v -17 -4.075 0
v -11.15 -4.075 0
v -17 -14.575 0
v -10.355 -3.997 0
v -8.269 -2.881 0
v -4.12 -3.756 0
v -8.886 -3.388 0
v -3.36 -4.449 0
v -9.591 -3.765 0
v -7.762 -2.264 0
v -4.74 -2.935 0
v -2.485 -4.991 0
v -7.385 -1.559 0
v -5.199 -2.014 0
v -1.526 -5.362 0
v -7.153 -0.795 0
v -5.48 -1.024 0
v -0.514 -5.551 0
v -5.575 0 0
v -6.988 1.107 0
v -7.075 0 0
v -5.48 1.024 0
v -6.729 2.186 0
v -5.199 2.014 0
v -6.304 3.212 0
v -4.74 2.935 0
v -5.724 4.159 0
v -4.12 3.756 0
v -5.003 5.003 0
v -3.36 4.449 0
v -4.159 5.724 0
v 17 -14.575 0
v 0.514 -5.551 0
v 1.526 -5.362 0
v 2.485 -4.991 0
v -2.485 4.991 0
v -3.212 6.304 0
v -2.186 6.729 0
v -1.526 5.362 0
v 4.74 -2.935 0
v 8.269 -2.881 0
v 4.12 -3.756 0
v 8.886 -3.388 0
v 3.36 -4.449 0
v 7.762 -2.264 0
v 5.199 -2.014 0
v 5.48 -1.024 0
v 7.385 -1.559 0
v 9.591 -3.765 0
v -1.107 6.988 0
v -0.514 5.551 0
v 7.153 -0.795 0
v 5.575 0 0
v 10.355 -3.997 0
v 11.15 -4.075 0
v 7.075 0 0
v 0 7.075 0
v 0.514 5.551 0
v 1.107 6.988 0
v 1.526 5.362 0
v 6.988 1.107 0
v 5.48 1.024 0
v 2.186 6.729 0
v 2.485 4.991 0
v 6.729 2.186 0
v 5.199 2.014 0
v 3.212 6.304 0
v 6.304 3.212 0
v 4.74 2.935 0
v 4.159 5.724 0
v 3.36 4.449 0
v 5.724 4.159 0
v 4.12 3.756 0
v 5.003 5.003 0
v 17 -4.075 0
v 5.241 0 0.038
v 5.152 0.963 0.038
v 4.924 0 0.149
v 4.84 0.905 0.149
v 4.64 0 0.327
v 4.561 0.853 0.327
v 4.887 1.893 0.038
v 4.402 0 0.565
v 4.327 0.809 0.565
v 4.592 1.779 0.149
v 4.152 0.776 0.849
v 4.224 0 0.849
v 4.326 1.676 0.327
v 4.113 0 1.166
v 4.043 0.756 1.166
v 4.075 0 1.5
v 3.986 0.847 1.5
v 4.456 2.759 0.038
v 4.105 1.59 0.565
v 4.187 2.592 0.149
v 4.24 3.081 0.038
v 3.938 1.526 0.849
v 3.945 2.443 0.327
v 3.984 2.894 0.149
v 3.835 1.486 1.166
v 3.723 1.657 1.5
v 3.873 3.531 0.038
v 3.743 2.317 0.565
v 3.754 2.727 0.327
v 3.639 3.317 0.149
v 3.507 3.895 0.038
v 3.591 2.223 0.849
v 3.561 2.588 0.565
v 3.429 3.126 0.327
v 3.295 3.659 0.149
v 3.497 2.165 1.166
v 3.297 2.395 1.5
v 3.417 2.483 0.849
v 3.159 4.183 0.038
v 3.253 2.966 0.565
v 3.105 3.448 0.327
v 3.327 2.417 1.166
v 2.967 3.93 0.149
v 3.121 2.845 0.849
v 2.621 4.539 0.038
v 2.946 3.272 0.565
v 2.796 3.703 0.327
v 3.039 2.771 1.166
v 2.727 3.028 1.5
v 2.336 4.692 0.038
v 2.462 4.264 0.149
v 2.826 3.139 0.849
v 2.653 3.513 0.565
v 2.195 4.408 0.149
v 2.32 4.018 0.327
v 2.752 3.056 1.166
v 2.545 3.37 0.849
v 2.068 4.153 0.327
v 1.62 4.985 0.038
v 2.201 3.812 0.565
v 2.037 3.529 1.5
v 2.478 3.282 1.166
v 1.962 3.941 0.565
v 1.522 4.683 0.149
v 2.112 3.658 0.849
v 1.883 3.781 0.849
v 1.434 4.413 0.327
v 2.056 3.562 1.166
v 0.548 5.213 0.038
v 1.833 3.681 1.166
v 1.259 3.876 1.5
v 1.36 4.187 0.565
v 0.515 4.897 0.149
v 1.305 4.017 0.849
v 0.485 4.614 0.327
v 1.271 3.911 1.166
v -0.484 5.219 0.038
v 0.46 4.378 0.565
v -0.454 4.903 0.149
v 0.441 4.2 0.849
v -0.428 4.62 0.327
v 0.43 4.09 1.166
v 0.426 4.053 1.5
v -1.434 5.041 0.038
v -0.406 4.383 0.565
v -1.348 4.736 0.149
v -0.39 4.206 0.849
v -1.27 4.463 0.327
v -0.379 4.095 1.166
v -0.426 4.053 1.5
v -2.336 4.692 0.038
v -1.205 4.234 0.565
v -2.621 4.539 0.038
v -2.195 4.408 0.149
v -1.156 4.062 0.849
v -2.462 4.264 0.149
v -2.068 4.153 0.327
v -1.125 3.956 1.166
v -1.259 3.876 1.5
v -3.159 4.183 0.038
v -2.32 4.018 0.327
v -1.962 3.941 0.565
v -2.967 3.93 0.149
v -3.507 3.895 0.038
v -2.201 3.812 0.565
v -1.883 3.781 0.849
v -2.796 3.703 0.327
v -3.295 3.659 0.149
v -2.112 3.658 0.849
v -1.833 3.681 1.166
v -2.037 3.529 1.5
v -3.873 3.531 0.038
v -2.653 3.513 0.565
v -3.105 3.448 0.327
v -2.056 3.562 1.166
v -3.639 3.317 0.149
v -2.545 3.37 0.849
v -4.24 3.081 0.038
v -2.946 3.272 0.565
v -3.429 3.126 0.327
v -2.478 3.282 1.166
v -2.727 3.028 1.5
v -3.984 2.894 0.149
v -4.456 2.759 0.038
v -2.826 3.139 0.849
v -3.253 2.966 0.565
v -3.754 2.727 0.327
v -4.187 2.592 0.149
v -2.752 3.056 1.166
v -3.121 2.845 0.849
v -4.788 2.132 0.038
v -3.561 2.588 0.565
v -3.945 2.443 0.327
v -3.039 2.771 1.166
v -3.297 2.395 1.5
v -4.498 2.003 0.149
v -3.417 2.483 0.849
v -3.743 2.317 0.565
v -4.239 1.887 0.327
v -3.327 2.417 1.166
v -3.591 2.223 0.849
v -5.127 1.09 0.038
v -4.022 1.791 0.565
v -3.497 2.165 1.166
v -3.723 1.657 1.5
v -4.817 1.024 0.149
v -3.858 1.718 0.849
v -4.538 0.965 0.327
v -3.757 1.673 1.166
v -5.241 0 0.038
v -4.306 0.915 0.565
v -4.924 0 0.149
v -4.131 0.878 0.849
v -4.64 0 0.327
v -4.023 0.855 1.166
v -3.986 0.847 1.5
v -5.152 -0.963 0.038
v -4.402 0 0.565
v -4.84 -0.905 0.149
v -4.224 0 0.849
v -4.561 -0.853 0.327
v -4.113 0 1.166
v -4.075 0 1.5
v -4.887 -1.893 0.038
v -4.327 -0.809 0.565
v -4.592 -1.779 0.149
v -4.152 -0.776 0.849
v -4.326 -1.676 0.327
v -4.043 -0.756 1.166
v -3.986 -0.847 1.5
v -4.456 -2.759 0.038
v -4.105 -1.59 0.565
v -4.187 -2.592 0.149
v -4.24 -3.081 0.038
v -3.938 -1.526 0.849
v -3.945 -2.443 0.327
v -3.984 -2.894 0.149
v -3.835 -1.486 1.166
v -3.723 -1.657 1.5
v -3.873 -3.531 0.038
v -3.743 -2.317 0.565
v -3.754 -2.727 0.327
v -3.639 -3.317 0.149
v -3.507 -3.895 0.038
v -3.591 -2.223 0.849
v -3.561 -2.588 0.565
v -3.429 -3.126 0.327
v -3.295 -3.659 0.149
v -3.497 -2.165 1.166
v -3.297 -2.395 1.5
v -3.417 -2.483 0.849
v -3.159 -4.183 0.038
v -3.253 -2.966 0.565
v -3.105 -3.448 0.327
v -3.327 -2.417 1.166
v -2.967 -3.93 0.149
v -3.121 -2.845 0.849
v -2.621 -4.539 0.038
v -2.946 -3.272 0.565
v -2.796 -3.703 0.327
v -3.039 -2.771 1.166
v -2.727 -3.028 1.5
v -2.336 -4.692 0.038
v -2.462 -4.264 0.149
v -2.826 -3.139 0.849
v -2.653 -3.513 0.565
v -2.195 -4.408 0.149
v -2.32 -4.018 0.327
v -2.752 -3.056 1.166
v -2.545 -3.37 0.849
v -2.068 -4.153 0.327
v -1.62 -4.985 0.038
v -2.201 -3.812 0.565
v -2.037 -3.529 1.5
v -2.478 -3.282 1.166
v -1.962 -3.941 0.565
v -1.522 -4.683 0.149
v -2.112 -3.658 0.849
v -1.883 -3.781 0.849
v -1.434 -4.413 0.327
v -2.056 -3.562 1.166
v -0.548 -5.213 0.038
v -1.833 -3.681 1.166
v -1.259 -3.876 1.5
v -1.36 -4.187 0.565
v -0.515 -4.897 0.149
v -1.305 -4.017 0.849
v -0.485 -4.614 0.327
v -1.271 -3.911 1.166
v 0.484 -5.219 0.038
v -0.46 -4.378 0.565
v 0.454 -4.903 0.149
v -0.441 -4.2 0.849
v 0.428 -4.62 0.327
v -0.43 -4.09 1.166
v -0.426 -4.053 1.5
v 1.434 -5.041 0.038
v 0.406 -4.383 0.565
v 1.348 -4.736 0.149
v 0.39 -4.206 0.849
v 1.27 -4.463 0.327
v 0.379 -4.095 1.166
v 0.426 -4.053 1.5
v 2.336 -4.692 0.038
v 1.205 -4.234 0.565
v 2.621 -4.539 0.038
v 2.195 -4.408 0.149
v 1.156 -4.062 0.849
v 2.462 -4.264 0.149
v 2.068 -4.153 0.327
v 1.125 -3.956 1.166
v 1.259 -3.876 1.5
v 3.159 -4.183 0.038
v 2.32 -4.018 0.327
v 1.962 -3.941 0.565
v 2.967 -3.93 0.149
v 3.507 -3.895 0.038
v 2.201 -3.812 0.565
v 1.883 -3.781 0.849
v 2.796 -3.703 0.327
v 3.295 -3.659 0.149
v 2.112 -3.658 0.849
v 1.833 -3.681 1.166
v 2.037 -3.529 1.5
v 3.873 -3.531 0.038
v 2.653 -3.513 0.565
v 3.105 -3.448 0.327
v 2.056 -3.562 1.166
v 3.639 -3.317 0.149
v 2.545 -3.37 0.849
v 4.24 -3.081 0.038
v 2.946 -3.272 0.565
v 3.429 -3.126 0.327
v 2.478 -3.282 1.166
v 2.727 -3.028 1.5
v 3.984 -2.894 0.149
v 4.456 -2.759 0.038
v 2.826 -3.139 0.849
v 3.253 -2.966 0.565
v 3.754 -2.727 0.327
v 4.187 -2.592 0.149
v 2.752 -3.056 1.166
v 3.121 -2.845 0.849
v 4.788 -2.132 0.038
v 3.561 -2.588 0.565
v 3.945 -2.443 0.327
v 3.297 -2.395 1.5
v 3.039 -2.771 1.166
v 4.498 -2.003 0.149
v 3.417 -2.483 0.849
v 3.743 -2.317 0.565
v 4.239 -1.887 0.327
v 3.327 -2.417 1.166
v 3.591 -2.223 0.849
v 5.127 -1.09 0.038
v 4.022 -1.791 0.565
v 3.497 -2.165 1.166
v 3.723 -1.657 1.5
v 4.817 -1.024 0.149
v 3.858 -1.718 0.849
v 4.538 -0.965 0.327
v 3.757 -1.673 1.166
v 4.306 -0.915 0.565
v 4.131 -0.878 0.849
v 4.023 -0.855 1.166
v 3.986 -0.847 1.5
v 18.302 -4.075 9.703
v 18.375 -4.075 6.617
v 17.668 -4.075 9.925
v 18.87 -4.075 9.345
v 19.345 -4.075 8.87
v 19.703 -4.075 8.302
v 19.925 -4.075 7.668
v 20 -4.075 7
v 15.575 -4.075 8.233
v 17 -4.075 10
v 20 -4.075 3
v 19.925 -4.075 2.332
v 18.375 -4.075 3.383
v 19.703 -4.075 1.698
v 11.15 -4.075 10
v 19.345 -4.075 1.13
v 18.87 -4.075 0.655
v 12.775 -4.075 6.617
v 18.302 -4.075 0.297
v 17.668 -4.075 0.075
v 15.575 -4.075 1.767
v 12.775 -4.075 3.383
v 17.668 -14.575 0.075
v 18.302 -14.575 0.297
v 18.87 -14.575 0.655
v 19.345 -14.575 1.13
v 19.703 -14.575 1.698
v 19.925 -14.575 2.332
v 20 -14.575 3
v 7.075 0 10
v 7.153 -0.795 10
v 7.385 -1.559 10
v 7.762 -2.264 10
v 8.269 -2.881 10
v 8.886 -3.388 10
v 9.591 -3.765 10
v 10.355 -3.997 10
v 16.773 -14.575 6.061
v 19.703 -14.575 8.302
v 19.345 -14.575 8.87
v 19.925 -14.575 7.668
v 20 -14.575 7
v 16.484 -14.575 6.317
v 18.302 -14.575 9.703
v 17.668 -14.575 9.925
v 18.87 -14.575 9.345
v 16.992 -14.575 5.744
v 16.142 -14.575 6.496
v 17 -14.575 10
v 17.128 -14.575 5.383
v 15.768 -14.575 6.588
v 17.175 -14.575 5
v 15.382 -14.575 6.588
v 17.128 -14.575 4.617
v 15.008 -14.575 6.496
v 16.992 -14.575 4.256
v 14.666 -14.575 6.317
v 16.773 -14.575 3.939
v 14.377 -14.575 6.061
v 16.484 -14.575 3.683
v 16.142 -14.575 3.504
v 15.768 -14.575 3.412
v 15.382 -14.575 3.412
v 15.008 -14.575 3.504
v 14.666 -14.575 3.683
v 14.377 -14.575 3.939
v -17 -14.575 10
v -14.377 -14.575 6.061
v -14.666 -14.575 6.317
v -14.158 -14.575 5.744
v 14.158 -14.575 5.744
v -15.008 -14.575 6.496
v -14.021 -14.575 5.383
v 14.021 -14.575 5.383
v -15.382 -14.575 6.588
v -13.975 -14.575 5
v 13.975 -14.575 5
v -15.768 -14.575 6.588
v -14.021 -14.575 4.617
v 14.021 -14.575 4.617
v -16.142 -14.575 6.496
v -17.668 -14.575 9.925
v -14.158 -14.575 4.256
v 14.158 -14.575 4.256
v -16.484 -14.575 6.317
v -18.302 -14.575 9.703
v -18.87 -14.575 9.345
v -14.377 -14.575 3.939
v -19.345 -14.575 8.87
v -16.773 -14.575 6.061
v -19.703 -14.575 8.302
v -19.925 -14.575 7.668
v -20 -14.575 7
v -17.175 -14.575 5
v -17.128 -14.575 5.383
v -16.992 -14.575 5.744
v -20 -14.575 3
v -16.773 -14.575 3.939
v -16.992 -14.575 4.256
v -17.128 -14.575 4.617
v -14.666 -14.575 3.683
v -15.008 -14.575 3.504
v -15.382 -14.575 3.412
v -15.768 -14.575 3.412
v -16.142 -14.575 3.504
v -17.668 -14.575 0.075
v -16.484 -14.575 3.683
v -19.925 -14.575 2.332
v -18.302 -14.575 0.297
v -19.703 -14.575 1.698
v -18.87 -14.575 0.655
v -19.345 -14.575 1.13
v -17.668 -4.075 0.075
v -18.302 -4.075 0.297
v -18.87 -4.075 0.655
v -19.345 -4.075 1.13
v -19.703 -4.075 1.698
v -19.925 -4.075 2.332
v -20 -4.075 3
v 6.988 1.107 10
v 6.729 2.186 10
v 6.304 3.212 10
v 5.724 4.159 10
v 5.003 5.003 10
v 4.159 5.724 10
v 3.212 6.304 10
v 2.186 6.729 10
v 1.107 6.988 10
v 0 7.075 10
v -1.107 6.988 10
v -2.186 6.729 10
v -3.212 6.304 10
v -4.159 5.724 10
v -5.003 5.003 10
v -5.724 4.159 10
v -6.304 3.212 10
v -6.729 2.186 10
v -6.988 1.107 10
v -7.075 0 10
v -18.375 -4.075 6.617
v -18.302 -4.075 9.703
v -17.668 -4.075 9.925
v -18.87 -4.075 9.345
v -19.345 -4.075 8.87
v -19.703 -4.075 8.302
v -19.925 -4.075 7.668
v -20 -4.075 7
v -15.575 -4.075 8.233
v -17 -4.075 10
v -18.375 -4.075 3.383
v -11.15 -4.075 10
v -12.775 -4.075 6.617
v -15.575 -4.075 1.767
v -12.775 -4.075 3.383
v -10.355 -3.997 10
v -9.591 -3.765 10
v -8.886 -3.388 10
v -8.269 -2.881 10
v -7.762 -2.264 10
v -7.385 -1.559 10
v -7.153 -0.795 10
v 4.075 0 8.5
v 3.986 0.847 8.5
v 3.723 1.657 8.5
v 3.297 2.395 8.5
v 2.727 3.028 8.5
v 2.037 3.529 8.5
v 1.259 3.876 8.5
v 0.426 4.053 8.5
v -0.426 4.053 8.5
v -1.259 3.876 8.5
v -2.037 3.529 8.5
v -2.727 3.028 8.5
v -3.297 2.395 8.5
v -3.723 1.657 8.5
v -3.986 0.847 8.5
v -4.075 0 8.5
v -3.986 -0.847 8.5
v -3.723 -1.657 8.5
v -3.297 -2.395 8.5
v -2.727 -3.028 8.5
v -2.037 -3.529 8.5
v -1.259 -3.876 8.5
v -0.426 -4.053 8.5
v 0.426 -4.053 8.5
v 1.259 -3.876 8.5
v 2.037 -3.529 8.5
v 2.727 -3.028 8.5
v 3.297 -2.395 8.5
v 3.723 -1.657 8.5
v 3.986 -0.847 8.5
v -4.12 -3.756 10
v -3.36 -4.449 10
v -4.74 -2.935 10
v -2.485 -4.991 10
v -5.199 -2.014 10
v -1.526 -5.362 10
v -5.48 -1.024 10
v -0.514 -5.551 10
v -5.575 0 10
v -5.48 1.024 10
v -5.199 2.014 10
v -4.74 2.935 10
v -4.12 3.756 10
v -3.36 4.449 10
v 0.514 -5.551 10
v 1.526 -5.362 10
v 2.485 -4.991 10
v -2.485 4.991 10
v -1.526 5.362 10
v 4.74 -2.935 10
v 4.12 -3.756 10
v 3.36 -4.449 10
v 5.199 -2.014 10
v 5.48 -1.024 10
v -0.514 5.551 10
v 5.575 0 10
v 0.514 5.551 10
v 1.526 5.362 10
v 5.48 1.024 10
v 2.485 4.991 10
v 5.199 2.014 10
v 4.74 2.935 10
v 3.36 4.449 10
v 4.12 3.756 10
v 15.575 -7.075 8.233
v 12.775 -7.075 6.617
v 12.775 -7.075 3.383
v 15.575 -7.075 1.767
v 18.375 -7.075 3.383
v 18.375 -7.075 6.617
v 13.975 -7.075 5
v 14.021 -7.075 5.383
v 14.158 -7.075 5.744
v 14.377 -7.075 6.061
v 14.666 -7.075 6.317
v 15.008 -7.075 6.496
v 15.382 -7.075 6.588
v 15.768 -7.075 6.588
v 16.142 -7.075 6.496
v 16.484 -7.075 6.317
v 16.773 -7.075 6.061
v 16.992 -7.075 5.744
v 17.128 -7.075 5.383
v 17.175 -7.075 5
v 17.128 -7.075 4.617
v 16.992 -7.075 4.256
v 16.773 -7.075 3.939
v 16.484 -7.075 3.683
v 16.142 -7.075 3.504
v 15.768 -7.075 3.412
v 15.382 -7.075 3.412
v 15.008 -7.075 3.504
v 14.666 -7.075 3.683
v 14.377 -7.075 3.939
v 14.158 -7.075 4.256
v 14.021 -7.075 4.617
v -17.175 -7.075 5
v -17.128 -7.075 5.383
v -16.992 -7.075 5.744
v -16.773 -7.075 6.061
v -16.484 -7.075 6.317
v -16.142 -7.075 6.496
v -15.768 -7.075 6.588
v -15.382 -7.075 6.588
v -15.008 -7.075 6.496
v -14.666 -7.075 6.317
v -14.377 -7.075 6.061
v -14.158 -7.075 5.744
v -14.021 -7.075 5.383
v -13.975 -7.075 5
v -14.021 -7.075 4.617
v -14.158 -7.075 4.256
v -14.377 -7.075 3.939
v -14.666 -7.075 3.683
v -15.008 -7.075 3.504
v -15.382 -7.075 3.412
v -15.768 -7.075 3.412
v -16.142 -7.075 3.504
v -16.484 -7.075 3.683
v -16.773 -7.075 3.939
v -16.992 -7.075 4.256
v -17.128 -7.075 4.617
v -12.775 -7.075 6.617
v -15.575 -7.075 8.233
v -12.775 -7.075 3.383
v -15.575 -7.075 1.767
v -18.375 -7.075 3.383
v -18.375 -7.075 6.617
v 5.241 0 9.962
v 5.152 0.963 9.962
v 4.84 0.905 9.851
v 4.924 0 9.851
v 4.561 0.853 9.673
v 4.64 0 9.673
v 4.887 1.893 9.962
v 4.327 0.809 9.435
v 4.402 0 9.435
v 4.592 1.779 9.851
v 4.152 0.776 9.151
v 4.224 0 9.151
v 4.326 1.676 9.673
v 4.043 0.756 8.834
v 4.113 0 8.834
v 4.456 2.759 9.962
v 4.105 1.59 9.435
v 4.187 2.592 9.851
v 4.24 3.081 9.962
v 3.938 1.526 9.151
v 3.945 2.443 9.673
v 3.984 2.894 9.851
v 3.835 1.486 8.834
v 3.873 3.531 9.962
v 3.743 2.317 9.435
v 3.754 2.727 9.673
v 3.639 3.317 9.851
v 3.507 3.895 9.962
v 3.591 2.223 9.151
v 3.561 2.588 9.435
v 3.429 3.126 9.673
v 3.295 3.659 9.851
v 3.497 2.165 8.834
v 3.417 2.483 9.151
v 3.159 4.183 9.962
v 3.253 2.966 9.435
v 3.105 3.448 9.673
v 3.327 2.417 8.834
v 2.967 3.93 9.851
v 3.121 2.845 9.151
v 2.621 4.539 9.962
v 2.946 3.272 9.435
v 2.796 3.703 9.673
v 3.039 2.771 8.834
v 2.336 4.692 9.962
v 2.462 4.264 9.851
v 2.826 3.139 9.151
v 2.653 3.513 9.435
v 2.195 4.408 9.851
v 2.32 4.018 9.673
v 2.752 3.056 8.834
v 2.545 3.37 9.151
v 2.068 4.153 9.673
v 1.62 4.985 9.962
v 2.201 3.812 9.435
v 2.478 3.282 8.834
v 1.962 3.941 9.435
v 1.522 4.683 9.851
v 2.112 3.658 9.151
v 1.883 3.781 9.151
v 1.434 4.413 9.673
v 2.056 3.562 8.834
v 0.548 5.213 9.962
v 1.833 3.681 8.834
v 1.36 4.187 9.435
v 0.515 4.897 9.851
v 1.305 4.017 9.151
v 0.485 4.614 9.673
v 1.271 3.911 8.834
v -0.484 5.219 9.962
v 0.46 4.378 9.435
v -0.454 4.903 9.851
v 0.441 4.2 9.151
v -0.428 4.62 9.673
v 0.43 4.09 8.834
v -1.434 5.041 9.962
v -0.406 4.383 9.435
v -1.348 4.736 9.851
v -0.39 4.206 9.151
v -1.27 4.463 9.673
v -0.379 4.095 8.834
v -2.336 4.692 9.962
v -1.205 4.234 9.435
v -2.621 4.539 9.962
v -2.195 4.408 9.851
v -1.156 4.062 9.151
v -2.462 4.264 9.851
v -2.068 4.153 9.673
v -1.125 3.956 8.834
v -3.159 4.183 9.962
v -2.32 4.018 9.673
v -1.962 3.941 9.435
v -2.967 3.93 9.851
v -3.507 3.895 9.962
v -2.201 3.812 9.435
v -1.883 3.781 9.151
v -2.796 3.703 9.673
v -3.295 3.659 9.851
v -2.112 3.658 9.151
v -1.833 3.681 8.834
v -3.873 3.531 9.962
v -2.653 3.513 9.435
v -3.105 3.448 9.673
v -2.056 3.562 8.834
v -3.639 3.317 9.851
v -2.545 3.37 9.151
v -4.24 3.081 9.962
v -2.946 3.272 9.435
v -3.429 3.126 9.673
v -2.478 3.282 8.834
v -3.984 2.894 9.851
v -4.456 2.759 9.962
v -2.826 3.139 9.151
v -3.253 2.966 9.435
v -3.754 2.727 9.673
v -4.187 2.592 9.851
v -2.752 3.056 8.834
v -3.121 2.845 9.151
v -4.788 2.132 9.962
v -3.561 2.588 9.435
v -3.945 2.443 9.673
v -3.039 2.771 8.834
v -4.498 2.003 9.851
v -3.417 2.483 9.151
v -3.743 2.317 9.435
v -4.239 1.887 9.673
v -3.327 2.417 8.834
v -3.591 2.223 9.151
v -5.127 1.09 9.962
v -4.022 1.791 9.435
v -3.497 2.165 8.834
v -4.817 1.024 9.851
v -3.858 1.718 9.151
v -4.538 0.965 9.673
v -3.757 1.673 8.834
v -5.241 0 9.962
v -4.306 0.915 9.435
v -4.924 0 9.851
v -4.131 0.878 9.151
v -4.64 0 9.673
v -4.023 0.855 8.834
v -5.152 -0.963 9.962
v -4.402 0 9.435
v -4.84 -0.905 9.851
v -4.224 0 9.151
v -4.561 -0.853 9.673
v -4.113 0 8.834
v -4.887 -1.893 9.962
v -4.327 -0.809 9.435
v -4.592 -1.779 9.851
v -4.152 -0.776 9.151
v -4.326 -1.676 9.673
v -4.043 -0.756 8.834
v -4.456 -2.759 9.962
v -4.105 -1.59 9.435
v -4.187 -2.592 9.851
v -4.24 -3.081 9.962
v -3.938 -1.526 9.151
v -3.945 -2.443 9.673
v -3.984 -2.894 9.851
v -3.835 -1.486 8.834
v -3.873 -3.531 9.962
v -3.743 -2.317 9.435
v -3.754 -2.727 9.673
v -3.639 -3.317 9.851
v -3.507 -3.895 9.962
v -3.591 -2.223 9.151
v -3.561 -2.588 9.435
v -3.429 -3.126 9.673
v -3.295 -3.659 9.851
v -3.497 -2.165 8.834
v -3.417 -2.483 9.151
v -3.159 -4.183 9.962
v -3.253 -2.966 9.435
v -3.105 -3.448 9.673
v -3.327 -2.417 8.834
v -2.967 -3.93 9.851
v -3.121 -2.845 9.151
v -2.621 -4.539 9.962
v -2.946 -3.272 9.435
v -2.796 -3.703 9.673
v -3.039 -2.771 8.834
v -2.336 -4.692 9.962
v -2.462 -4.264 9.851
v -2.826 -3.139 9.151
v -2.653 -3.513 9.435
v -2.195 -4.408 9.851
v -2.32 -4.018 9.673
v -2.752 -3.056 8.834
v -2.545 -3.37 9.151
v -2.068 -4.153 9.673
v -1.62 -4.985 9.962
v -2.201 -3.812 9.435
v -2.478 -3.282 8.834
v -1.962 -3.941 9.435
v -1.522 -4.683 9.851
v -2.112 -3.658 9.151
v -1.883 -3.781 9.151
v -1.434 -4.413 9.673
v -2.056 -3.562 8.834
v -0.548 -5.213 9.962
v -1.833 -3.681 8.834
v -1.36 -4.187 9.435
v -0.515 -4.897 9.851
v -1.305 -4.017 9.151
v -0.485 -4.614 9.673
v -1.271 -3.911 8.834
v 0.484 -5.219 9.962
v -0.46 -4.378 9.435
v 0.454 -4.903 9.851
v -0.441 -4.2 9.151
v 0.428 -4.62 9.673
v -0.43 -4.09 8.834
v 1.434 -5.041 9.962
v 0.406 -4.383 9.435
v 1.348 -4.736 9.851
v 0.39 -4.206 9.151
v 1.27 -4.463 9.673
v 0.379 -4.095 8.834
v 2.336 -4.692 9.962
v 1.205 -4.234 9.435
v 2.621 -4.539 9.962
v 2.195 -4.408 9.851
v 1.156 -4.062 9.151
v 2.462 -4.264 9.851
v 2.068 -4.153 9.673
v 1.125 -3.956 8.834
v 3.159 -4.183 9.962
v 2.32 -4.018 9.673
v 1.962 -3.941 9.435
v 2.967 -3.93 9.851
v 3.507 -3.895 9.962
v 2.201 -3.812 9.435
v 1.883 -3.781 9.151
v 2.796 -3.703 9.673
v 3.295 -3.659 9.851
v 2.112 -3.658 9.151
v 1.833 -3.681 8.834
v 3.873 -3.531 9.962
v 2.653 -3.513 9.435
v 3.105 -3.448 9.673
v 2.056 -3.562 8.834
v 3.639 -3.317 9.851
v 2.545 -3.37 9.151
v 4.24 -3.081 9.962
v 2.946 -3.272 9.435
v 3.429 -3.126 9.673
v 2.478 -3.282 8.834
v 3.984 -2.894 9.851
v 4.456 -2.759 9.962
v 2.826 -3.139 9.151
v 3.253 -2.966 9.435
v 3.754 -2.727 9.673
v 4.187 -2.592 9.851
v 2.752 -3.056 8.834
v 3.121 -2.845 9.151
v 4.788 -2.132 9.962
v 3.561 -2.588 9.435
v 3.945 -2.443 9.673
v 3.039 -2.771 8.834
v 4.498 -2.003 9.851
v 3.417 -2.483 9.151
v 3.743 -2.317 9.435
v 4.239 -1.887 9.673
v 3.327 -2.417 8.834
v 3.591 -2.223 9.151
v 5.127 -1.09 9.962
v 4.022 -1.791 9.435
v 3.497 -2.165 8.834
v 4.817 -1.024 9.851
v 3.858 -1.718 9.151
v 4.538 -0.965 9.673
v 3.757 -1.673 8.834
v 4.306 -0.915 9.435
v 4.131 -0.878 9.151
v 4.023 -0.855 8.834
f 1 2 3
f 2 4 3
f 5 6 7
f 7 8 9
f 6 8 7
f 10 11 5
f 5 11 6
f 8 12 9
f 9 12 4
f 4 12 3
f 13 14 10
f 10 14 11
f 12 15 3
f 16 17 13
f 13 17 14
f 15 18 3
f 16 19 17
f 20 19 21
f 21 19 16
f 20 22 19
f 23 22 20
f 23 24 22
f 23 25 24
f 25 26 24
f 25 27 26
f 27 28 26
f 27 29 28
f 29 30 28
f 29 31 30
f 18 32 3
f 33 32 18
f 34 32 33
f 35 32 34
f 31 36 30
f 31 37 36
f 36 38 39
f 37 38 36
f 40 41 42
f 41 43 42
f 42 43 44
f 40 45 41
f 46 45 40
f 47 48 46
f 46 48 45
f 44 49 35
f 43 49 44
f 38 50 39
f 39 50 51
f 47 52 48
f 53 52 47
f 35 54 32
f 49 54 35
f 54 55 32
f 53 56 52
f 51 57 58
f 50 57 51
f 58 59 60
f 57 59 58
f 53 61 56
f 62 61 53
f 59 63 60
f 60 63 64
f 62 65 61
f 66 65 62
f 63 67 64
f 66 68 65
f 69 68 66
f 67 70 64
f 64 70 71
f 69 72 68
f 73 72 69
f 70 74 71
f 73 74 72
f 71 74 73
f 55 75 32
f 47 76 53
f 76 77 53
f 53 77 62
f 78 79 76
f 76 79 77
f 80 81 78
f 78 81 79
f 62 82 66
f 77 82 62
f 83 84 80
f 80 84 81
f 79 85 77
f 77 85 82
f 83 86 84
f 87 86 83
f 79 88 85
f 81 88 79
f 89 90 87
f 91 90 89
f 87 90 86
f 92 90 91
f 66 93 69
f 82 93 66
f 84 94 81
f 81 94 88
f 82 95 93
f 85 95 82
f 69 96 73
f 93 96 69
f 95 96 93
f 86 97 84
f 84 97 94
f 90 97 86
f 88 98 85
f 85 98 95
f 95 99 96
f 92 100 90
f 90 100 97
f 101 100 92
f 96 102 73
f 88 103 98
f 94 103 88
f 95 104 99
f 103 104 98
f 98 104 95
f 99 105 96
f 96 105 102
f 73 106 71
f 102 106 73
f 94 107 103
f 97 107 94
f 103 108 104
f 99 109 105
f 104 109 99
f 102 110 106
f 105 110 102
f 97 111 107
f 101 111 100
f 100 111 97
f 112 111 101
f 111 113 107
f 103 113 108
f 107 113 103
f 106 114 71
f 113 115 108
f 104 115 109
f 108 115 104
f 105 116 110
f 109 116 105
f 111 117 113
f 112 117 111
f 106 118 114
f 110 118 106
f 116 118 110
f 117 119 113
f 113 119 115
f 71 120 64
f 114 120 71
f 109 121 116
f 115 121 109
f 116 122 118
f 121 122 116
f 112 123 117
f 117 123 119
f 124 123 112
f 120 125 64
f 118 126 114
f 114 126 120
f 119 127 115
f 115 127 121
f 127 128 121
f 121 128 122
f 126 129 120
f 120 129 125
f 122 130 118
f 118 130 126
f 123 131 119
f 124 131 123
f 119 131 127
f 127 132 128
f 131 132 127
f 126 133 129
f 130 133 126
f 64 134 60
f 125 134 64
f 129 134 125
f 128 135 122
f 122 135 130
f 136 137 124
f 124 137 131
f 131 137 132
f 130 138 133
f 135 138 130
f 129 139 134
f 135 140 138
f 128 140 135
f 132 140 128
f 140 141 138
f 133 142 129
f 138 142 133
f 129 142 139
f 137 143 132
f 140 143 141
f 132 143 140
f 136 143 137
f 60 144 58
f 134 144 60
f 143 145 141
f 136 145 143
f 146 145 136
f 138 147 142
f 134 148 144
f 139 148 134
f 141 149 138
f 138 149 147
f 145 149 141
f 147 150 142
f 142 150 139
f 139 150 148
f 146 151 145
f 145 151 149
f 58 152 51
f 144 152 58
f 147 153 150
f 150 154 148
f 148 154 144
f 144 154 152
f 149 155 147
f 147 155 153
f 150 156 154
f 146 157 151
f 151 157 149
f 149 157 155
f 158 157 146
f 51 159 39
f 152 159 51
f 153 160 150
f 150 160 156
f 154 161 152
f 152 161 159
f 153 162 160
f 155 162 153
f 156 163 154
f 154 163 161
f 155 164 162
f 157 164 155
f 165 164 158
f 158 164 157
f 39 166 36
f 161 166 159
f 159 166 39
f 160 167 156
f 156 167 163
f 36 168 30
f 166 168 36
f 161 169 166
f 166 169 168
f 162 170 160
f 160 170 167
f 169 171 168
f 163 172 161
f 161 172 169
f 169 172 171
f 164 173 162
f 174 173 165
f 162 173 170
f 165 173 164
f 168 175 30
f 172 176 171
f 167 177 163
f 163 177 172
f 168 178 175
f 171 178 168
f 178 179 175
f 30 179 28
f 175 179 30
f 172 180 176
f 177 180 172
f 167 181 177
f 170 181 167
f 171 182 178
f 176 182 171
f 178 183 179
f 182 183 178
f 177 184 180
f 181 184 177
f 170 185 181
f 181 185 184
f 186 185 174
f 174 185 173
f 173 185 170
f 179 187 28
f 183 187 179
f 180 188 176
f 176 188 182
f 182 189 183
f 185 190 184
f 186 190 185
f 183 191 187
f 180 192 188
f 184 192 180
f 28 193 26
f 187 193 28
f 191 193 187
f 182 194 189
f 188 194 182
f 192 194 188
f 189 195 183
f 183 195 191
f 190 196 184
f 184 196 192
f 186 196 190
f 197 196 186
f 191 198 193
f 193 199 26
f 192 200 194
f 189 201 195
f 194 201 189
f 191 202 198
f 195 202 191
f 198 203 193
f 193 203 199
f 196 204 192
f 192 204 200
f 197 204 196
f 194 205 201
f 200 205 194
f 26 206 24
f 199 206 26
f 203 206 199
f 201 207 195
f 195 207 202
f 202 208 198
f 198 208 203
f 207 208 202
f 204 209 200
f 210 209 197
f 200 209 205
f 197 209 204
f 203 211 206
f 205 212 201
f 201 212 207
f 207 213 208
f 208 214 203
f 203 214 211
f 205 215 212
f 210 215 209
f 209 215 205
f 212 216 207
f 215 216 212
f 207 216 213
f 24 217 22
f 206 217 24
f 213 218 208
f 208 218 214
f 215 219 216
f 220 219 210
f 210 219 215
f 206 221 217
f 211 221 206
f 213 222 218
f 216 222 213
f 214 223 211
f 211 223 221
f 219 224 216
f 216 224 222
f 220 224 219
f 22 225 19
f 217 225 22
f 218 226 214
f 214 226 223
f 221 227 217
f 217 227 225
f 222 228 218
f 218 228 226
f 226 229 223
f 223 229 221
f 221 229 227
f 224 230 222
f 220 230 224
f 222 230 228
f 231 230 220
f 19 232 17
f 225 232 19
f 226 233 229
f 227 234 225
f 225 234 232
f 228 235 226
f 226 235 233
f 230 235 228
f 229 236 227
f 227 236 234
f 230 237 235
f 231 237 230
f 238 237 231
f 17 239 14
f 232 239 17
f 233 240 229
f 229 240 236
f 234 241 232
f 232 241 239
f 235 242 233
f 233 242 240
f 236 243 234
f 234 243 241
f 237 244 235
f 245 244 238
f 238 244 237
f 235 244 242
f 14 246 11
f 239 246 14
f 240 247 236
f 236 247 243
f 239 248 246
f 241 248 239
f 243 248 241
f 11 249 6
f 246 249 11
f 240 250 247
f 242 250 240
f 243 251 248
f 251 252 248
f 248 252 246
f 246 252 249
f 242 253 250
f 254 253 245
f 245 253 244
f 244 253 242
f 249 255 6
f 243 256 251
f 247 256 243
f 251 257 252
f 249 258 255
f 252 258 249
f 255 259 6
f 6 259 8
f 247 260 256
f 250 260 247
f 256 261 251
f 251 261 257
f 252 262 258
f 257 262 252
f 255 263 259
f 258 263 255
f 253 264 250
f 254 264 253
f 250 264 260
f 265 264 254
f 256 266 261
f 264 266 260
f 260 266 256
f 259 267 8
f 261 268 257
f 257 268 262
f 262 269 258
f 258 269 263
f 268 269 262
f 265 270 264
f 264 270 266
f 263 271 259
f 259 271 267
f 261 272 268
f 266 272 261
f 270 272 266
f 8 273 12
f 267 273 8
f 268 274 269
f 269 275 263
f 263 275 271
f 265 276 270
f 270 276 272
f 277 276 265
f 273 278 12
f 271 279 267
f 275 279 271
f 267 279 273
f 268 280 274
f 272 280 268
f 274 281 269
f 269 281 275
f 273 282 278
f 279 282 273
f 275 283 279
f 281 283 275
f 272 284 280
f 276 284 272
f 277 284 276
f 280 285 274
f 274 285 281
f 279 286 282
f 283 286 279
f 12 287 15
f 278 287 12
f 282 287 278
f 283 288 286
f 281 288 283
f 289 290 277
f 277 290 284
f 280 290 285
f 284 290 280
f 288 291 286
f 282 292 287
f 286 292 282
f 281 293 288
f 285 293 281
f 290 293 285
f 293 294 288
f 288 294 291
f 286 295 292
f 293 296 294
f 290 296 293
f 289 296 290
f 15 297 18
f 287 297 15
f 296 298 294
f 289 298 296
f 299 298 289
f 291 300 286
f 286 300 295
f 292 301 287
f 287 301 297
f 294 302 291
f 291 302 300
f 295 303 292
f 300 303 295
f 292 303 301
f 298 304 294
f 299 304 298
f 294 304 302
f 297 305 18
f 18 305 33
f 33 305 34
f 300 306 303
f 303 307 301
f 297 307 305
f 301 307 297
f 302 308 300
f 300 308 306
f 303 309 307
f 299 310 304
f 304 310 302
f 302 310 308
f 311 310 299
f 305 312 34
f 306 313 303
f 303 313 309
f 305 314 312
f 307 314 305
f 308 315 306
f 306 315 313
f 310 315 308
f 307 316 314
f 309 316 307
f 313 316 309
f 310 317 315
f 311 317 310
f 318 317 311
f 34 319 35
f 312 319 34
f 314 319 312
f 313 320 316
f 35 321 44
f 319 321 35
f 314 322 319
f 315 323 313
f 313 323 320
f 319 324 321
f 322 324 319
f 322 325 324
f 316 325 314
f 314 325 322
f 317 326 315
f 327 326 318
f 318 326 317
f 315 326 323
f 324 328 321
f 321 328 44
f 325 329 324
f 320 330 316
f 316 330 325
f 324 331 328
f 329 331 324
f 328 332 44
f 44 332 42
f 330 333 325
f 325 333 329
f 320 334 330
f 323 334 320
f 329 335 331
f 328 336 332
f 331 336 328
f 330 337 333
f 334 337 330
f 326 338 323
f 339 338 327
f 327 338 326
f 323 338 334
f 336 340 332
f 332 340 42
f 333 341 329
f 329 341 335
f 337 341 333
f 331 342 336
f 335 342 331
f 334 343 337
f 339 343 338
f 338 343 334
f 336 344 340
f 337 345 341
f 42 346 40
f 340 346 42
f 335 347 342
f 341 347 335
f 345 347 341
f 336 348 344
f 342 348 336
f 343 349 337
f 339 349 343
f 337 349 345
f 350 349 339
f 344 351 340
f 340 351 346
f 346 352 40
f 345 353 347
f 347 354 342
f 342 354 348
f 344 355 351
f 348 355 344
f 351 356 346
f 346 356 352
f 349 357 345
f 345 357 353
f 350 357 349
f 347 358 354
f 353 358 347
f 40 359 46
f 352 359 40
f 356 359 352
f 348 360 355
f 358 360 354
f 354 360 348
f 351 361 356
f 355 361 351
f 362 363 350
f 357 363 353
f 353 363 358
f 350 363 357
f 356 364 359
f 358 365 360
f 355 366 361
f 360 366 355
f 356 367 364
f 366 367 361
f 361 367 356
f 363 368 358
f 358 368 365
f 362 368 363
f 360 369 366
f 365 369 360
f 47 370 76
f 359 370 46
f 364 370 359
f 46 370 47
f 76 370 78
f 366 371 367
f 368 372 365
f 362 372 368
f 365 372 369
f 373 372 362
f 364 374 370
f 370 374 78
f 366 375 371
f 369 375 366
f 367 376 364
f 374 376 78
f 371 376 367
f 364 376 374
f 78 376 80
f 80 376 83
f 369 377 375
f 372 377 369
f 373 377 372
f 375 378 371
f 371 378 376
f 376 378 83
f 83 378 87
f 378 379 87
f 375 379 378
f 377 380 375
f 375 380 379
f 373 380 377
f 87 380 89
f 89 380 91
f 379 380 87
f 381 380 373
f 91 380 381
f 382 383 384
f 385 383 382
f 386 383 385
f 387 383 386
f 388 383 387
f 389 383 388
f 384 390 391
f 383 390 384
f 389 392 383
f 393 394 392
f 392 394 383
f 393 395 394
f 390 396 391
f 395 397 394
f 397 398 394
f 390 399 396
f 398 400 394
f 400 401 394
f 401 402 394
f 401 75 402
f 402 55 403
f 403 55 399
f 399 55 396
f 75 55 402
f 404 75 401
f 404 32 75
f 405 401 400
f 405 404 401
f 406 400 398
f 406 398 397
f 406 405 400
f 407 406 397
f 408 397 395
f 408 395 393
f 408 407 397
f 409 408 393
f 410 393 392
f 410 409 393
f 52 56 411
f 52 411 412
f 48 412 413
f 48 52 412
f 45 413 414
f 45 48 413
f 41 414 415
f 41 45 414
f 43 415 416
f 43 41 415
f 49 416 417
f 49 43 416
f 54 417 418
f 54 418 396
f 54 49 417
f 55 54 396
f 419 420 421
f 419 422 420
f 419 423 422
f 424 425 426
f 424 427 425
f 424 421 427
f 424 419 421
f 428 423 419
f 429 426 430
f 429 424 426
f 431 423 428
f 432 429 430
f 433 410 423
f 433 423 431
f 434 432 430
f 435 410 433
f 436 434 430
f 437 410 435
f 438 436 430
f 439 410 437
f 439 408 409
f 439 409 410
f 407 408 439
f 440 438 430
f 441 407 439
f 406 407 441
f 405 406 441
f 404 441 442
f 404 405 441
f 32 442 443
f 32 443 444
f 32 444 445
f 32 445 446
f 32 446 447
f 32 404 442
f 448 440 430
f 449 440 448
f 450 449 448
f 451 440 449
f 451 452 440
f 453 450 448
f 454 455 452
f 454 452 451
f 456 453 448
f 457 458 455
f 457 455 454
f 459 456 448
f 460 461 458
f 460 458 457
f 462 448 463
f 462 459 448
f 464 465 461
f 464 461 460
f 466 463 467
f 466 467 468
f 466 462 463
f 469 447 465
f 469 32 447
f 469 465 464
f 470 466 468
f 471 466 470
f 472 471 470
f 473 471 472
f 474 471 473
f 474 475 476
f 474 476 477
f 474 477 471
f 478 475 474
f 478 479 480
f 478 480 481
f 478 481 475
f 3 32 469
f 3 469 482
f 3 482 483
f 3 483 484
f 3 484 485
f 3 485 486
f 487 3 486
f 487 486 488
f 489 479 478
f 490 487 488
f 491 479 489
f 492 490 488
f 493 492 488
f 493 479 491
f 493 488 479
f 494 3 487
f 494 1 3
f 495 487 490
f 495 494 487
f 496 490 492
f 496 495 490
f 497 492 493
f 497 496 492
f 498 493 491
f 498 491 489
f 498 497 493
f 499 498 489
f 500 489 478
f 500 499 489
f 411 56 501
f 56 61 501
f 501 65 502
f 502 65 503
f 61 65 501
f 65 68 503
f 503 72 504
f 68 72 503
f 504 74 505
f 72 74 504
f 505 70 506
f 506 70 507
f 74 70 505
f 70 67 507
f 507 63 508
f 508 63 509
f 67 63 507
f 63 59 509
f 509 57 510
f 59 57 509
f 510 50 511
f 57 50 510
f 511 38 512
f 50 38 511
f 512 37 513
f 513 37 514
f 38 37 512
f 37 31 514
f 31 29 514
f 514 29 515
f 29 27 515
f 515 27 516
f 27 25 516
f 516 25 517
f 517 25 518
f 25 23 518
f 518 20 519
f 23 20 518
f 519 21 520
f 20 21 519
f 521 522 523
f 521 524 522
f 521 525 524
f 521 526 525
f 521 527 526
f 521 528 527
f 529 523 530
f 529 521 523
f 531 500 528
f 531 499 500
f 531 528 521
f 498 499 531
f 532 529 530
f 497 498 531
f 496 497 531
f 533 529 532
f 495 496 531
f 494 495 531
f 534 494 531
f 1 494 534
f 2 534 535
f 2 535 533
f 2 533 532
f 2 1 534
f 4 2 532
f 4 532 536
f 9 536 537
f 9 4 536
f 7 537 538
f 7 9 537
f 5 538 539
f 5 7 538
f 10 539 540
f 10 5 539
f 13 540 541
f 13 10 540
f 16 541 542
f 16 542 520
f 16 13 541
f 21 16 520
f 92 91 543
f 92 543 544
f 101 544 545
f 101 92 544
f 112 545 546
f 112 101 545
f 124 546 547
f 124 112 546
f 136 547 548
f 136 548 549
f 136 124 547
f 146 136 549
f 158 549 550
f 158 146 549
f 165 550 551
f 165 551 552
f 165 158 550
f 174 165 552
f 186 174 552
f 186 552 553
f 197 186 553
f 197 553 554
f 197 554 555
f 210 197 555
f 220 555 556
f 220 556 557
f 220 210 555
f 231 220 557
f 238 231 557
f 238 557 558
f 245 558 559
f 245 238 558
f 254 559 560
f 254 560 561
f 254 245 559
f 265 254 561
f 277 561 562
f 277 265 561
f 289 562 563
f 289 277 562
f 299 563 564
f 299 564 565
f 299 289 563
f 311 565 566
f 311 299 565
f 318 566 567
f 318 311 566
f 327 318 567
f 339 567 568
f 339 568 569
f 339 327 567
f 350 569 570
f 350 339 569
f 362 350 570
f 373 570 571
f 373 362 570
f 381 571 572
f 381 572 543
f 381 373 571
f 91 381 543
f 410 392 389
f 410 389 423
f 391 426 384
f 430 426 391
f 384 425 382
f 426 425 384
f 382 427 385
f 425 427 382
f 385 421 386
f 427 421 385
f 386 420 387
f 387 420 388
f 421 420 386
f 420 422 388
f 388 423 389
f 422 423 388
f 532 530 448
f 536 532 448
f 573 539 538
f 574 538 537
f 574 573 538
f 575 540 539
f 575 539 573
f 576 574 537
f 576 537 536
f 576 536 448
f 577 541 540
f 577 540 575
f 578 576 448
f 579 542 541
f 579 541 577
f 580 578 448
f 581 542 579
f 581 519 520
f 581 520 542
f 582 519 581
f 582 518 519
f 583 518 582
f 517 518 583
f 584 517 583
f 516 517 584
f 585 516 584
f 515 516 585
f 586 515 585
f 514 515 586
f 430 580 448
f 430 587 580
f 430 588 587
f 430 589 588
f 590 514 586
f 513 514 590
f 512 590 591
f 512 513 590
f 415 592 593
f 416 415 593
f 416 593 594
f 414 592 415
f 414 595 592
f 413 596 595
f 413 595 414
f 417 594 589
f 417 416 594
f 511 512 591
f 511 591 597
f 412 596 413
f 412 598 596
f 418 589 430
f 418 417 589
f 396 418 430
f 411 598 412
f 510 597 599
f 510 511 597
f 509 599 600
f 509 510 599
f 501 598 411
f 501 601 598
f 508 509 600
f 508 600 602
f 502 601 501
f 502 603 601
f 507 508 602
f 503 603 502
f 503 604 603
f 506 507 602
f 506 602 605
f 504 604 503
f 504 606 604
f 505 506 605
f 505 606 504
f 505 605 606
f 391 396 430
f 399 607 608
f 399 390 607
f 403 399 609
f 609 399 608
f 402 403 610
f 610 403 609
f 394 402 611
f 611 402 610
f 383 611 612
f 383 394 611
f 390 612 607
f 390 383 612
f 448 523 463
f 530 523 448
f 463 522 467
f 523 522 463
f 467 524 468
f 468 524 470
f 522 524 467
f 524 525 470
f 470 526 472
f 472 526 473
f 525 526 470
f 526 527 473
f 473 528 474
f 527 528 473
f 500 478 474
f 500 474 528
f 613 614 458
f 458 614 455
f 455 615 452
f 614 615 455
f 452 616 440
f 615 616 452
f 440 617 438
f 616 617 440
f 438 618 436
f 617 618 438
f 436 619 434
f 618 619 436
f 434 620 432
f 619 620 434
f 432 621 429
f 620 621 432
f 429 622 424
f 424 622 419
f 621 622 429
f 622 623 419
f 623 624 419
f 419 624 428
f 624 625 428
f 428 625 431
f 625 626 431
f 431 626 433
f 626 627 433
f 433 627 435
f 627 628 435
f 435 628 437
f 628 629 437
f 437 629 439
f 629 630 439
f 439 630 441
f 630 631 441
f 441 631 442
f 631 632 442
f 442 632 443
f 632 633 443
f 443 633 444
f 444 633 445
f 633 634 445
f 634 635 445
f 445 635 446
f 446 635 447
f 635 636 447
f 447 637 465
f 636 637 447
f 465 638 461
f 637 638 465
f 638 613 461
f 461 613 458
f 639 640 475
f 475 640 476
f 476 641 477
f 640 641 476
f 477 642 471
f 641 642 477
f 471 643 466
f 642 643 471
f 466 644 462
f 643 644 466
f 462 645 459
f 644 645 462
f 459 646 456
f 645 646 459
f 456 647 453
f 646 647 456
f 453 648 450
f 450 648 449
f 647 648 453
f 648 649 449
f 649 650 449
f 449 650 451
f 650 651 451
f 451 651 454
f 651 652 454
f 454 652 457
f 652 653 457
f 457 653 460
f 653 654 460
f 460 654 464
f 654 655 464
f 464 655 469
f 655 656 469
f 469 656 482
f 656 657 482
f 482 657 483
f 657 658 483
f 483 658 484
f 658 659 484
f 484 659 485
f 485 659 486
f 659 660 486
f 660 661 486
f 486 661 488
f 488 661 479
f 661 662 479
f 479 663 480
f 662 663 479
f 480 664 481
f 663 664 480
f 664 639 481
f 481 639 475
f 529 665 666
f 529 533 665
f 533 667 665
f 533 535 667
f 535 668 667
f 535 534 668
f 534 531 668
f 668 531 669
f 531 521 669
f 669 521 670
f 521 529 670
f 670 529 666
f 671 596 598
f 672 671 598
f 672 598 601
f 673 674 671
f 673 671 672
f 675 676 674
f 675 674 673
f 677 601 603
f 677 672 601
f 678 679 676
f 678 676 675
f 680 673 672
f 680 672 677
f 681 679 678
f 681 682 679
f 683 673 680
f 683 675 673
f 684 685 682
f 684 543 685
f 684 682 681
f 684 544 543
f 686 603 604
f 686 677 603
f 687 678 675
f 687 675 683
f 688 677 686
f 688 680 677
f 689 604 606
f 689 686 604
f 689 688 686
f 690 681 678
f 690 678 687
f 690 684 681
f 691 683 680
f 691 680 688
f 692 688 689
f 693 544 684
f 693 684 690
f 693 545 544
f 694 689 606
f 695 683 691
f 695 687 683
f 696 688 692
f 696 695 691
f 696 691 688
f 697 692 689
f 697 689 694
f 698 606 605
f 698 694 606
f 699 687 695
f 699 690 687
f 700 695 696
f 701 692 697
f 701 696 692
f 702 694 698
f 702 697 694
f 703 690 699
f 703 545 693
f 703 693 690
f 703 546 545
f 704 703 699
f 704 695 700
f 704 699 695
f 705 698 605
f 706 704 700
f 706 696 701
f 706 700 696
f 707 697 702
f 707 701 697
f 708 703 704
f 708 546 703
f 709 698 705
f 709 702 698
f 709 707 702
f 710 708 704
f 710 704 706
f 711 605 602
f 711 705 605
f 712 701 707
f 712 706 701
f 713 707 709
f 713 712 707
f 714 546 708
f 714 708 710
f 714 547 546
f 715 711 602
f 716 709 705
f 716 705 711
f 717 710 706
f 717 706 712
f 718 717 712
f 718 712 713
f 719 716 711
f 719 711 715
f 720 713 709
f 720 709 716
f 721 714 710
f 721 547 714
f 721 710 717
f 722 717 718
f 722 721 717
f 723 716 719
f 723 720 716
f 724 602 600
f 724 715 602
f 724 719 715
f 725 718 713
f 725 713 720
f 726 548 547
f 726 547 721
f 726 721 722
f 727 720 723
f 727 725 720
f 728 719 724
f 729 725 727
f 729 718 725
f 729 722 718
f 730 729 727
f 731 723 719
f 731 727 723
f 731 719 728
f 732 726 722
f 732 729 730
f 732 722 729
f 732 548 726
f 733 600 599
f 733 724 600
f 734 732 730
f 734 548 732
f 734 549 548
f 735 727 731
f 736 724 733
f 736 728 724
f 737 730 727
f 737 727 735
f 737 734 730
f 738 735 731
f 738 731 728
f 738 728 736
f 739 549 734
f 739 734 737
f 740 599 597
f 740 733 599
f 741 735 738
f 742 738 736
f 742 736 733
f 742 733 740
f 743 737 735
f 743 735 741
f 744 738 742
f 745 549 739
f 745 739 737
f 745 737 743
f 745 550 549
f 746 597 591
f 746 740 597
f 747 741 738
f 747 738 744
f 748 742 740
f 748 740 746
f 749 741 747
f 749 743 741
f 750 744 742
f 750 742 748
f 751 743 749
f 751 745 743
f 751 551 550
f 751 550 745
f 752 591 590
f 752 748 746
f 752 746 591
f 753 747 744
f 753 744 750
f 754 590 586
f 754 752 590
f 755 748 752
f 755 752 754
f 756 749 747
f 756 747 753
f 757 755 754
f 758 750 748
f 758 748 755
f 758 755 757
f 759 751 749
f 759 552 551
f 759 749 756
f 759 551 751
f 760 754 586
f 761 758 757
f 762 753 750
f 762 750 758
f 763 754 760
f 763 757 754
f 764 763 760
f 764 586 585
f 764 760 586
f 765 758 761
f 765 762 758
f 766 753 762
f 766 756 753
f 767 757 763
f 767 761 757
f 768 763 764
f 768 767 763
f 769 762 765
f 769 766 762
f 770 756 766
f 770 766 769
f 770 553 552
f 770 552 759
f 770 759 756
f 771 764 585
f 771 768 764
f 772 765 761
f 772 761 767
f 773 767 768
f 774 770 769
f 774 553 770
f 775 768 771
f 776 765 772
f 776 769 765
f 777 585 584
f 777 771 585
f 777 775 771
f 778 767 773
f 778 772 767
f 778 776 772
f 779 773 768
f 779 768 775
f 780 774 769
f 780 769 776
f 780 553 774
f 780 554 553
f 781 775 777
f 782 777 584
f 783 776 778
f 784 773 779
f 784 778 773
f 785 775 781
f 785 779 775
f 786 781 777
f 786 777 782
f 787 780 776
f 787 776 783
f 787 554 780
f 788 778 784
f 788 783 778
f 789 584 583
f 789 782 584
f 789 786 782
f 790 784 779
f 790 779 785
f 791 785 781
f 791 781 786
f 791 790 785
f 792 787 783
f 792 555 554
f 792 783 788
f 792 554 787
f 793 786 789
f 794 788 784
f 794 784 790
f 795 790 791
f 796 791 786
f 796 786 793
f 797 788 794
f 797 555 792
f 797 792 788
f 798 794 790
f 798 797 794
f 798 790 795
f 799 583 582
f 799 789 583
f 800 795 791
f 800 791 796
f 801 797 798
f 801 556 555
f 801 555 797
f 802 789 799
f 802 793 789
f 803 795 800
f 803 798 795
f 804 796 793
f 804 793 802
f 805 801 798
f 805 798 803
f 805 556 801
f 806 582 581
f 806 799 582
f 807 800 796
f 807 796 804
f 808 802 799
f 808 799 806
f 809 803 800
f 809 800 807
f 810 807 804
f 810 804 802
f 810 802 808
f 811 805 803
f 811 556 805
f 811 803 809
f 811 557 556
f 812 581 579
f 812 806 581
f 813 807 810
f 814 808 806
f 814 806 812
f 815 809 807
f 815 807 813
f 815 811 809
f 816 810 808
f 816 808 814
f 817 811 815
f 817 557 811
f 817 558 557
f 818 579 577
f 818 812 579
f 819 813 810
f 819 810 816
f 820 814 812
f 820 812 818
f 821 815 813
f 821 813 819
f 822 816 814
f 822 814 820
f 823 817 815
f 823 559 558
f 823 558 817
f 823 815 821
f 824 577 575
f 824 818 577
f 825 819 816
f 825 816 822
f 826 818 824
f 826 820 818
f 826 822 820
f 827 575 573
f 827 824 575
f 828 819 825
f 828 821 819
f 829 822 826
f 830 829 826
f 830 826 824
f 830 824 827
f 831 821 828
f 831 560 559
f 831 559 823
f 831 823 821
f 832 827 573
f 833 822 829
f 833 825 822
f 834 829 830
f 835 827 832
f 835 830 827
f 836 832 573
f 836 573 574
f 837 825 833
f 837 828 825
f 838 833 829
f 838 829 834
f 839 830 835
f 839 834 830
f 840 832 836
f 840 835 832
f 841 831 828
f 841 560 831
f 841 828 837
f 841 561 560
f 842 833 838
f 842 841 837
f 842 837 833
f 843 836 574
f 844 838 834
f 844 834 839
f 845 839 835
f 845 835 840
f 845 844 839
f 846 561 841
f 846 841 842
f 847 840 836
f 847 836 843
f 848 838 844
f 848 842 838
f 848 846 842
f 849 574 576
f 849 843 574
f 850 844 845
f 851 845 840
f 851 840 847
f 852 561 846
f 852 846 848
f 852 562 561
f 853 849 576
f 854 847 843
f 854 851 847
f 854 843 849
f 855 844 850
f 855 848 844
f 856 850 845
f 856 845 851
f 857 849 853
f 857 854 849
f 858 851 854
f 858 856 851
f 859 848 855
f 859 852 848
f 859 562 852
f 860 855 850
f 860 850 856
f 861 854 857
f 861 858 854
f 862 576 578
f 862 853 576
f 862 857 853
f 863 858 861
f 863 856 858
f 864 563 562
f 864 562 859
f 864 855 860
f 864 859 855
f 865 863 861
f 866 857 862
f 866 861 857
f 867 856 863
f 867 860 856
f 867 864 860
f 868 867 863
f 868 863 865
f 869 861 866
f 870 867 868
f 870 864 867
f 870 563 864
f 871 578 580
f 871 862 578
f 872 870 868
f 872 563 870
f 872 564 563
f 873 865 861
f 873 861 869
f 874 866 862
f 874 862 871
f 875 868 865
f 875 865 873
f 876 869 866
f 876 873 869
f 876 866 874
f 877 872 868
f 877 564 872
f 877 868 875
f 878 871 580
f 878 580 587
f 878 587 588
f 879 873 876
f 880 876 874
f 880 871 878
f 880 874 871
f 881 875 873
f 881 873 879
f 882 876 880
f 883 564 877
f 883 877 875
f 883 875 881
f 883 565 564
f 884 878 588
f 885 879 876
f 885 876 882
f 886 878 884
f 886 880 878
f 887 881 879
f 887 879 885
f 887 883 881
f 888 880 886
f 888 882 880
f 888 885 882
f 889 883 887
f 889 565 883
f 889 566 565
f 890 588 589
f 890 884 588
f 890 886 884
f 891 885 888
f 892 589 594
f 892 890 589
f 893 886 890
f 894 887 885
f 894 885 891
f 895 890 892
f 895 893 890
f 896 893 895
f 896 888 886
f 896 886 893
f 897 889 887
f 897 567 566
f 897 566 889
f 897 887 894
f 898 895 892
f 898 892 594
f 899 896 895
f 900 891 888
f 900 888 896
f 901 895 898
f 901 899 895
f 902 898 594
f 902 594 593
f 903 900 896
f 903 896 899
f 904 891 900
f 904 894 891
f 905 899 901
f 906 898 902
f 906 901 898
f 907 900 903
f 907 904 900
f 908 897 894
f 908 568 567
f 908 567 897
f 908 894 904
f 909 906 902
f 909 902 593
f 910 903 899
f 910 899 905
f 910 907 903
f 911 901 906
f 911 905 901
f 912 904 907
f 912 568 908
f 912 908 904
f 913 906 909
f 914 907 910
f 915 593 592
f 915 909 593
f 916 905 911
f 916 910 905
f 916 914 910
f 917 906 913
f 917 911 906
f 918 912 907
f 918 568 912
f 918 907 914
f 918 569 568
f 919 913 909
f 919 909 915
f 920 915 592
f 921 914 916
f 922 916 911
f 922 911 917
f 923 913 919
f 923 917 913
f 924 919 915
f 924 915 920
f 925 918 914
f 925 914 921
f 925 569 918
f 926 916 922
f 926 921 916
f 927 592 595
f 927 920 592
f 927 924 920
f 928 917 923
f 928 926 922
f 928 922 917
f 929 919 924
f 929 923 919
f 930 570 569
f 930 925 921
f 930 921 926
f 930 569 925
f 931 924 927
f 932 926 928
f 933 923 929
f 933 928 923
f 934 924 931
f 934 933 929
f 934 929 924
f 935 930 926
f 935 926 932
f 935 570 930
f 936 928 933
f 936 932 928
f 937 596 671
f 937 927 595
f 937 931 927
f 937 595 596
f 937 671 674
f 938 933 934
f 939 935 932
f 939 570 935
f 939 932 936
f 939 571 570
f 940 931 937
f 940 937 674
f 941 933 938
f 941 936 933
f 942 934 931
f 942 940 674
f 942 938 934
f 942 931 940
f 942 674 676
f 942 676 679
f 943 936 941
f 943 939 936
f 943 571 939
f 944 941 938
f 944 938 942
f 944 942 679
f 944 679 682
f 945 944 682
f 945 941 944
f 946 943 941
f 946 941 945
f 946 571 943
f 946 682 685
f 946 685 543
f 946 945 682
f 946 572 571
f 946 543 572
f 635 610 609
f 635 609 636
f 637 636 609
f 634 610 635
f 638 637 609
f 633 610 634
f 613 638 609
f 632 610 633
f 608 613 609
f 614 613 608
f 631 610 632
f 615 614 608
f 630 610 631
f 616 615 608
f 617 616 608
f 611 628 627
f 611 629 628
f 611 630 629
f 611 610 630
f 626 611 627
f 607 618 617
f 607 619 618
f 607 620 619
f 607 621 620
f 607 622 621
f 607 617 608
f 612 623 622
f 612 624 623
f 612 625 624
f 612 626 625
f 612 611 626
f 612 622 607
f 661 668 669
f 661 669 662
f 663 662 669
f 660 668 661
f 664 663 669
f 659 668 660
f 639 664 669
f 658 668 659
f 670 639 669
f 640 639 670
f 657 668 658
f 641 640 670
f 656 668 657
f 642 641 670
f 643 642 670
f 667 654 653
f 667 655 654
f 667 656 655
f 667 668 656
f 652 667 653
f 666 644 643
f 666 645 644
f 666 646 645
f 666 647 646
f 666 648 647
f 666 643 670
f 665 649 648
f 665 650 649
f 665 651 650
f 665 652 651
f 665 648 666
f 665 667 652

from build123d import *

# Parameters (mm, degrees)
SKETCH_R        = 4.075
PAD_DEPTH       = 10
SKETCH001_R     = 1.6
POCKET_DEPTH    = 10.501
POCKET001_DEPTH = 3
FILLET_R        = 3
FILLET001_R     = 1.5


with BuildPart() as part:
    # Sketch → Pad (new body)
    with BuildSketch(Plane.XY):
        with BuildLine():
            Line((20, -4.075), (20, -14.575))
            Line((20, -14.575), (-20, -14.575))
            Line((-20, -14.575), (-20, -4.075))
            Line((-20, -4.075), (-11.149975, -4.075))
            ThreePointArc((-11.149975, -4.075), (-8.268533, -2.881467), (-7.075, -2.5e-05))
            Line((-7.075, 0), (-7.075, -2.5e-05))
            ThreePointArc((7.075, 0), (0, 7.075), (-7.075, 0))
            Line((7.075, -2.5e-05), (7.075, 0))
            ThreePointArc((7.075, -2.5e-05), (8.268533, -2.881467), (11.149975, -4.075))
            Line((20, -4.075), (11.149975, -4.075))
        make_face()
        Circle(SKETCH_R, mode=Mode.SUBTRACT)
    extrude(amount=PAD_DEPTH)

    # Sketch001 (on Face6 of Pad) → Pocket (cut, through all)
    with BuildSketch(Plane(origin=(0, -4.075, 0), x_dir=(-1, 0, 0), z_dir=(0, 1, 0))):
        with Locations((-15.574988, 5)):
            Circle(SKETCH001_R)
        with Locations((15.574988, 5)):
            Circle(SKETCH001_R)
    extrude(amount=-POCKET_DEPTH, mode=Mode.SUBTRACT)

    # Sketch002 (on Face11 of Pocket) → Pocket001 (cut)
    with BuildSketch(Plane(origin=(0, -4.075, 0), x_dir=(-1, 0, 0), z_dir=(0, 1, 0))):
        Polygon((-15.574988, 8.233162), (-18.374988, 6.616581), (-18.374988, 3.383419), (-15.574988, 1.766838), (-12.774988, 3.383419), (-12.774988, 6.616581), align=None)
        Polygon((15.574988, 8.233162), (12.774988, 6.616581), (12.774988, 3.383419), (15.574988, 1.766838), (18.374988, 3.383419), (18.374988, 6.616581), align=None)
    extrude(amount=-POCKET001_DEPTH, mode=Mode.SUBTRACT)

    # Fillet
    fillet_edges = [part.edges().sort_by_distance(p)[0] for p in [
        (-20, -9.325, 0),
        (-20, -9.325, 10),
        (20, -9.325, 0),
        (20, -9.325, 10),
    ]]
    fillet(fillet_edges, radius=FILLET_R)

    # Fillet001
    fillet001_edges = [part.edges().sort_by_distance(p)[0] for p in [
        (-4.075, 0, 10),
        (-4.075, 0, 0),
    ]]
    fillet(fillet001_edges, radius=FILLET001_R)


solid = part.part
